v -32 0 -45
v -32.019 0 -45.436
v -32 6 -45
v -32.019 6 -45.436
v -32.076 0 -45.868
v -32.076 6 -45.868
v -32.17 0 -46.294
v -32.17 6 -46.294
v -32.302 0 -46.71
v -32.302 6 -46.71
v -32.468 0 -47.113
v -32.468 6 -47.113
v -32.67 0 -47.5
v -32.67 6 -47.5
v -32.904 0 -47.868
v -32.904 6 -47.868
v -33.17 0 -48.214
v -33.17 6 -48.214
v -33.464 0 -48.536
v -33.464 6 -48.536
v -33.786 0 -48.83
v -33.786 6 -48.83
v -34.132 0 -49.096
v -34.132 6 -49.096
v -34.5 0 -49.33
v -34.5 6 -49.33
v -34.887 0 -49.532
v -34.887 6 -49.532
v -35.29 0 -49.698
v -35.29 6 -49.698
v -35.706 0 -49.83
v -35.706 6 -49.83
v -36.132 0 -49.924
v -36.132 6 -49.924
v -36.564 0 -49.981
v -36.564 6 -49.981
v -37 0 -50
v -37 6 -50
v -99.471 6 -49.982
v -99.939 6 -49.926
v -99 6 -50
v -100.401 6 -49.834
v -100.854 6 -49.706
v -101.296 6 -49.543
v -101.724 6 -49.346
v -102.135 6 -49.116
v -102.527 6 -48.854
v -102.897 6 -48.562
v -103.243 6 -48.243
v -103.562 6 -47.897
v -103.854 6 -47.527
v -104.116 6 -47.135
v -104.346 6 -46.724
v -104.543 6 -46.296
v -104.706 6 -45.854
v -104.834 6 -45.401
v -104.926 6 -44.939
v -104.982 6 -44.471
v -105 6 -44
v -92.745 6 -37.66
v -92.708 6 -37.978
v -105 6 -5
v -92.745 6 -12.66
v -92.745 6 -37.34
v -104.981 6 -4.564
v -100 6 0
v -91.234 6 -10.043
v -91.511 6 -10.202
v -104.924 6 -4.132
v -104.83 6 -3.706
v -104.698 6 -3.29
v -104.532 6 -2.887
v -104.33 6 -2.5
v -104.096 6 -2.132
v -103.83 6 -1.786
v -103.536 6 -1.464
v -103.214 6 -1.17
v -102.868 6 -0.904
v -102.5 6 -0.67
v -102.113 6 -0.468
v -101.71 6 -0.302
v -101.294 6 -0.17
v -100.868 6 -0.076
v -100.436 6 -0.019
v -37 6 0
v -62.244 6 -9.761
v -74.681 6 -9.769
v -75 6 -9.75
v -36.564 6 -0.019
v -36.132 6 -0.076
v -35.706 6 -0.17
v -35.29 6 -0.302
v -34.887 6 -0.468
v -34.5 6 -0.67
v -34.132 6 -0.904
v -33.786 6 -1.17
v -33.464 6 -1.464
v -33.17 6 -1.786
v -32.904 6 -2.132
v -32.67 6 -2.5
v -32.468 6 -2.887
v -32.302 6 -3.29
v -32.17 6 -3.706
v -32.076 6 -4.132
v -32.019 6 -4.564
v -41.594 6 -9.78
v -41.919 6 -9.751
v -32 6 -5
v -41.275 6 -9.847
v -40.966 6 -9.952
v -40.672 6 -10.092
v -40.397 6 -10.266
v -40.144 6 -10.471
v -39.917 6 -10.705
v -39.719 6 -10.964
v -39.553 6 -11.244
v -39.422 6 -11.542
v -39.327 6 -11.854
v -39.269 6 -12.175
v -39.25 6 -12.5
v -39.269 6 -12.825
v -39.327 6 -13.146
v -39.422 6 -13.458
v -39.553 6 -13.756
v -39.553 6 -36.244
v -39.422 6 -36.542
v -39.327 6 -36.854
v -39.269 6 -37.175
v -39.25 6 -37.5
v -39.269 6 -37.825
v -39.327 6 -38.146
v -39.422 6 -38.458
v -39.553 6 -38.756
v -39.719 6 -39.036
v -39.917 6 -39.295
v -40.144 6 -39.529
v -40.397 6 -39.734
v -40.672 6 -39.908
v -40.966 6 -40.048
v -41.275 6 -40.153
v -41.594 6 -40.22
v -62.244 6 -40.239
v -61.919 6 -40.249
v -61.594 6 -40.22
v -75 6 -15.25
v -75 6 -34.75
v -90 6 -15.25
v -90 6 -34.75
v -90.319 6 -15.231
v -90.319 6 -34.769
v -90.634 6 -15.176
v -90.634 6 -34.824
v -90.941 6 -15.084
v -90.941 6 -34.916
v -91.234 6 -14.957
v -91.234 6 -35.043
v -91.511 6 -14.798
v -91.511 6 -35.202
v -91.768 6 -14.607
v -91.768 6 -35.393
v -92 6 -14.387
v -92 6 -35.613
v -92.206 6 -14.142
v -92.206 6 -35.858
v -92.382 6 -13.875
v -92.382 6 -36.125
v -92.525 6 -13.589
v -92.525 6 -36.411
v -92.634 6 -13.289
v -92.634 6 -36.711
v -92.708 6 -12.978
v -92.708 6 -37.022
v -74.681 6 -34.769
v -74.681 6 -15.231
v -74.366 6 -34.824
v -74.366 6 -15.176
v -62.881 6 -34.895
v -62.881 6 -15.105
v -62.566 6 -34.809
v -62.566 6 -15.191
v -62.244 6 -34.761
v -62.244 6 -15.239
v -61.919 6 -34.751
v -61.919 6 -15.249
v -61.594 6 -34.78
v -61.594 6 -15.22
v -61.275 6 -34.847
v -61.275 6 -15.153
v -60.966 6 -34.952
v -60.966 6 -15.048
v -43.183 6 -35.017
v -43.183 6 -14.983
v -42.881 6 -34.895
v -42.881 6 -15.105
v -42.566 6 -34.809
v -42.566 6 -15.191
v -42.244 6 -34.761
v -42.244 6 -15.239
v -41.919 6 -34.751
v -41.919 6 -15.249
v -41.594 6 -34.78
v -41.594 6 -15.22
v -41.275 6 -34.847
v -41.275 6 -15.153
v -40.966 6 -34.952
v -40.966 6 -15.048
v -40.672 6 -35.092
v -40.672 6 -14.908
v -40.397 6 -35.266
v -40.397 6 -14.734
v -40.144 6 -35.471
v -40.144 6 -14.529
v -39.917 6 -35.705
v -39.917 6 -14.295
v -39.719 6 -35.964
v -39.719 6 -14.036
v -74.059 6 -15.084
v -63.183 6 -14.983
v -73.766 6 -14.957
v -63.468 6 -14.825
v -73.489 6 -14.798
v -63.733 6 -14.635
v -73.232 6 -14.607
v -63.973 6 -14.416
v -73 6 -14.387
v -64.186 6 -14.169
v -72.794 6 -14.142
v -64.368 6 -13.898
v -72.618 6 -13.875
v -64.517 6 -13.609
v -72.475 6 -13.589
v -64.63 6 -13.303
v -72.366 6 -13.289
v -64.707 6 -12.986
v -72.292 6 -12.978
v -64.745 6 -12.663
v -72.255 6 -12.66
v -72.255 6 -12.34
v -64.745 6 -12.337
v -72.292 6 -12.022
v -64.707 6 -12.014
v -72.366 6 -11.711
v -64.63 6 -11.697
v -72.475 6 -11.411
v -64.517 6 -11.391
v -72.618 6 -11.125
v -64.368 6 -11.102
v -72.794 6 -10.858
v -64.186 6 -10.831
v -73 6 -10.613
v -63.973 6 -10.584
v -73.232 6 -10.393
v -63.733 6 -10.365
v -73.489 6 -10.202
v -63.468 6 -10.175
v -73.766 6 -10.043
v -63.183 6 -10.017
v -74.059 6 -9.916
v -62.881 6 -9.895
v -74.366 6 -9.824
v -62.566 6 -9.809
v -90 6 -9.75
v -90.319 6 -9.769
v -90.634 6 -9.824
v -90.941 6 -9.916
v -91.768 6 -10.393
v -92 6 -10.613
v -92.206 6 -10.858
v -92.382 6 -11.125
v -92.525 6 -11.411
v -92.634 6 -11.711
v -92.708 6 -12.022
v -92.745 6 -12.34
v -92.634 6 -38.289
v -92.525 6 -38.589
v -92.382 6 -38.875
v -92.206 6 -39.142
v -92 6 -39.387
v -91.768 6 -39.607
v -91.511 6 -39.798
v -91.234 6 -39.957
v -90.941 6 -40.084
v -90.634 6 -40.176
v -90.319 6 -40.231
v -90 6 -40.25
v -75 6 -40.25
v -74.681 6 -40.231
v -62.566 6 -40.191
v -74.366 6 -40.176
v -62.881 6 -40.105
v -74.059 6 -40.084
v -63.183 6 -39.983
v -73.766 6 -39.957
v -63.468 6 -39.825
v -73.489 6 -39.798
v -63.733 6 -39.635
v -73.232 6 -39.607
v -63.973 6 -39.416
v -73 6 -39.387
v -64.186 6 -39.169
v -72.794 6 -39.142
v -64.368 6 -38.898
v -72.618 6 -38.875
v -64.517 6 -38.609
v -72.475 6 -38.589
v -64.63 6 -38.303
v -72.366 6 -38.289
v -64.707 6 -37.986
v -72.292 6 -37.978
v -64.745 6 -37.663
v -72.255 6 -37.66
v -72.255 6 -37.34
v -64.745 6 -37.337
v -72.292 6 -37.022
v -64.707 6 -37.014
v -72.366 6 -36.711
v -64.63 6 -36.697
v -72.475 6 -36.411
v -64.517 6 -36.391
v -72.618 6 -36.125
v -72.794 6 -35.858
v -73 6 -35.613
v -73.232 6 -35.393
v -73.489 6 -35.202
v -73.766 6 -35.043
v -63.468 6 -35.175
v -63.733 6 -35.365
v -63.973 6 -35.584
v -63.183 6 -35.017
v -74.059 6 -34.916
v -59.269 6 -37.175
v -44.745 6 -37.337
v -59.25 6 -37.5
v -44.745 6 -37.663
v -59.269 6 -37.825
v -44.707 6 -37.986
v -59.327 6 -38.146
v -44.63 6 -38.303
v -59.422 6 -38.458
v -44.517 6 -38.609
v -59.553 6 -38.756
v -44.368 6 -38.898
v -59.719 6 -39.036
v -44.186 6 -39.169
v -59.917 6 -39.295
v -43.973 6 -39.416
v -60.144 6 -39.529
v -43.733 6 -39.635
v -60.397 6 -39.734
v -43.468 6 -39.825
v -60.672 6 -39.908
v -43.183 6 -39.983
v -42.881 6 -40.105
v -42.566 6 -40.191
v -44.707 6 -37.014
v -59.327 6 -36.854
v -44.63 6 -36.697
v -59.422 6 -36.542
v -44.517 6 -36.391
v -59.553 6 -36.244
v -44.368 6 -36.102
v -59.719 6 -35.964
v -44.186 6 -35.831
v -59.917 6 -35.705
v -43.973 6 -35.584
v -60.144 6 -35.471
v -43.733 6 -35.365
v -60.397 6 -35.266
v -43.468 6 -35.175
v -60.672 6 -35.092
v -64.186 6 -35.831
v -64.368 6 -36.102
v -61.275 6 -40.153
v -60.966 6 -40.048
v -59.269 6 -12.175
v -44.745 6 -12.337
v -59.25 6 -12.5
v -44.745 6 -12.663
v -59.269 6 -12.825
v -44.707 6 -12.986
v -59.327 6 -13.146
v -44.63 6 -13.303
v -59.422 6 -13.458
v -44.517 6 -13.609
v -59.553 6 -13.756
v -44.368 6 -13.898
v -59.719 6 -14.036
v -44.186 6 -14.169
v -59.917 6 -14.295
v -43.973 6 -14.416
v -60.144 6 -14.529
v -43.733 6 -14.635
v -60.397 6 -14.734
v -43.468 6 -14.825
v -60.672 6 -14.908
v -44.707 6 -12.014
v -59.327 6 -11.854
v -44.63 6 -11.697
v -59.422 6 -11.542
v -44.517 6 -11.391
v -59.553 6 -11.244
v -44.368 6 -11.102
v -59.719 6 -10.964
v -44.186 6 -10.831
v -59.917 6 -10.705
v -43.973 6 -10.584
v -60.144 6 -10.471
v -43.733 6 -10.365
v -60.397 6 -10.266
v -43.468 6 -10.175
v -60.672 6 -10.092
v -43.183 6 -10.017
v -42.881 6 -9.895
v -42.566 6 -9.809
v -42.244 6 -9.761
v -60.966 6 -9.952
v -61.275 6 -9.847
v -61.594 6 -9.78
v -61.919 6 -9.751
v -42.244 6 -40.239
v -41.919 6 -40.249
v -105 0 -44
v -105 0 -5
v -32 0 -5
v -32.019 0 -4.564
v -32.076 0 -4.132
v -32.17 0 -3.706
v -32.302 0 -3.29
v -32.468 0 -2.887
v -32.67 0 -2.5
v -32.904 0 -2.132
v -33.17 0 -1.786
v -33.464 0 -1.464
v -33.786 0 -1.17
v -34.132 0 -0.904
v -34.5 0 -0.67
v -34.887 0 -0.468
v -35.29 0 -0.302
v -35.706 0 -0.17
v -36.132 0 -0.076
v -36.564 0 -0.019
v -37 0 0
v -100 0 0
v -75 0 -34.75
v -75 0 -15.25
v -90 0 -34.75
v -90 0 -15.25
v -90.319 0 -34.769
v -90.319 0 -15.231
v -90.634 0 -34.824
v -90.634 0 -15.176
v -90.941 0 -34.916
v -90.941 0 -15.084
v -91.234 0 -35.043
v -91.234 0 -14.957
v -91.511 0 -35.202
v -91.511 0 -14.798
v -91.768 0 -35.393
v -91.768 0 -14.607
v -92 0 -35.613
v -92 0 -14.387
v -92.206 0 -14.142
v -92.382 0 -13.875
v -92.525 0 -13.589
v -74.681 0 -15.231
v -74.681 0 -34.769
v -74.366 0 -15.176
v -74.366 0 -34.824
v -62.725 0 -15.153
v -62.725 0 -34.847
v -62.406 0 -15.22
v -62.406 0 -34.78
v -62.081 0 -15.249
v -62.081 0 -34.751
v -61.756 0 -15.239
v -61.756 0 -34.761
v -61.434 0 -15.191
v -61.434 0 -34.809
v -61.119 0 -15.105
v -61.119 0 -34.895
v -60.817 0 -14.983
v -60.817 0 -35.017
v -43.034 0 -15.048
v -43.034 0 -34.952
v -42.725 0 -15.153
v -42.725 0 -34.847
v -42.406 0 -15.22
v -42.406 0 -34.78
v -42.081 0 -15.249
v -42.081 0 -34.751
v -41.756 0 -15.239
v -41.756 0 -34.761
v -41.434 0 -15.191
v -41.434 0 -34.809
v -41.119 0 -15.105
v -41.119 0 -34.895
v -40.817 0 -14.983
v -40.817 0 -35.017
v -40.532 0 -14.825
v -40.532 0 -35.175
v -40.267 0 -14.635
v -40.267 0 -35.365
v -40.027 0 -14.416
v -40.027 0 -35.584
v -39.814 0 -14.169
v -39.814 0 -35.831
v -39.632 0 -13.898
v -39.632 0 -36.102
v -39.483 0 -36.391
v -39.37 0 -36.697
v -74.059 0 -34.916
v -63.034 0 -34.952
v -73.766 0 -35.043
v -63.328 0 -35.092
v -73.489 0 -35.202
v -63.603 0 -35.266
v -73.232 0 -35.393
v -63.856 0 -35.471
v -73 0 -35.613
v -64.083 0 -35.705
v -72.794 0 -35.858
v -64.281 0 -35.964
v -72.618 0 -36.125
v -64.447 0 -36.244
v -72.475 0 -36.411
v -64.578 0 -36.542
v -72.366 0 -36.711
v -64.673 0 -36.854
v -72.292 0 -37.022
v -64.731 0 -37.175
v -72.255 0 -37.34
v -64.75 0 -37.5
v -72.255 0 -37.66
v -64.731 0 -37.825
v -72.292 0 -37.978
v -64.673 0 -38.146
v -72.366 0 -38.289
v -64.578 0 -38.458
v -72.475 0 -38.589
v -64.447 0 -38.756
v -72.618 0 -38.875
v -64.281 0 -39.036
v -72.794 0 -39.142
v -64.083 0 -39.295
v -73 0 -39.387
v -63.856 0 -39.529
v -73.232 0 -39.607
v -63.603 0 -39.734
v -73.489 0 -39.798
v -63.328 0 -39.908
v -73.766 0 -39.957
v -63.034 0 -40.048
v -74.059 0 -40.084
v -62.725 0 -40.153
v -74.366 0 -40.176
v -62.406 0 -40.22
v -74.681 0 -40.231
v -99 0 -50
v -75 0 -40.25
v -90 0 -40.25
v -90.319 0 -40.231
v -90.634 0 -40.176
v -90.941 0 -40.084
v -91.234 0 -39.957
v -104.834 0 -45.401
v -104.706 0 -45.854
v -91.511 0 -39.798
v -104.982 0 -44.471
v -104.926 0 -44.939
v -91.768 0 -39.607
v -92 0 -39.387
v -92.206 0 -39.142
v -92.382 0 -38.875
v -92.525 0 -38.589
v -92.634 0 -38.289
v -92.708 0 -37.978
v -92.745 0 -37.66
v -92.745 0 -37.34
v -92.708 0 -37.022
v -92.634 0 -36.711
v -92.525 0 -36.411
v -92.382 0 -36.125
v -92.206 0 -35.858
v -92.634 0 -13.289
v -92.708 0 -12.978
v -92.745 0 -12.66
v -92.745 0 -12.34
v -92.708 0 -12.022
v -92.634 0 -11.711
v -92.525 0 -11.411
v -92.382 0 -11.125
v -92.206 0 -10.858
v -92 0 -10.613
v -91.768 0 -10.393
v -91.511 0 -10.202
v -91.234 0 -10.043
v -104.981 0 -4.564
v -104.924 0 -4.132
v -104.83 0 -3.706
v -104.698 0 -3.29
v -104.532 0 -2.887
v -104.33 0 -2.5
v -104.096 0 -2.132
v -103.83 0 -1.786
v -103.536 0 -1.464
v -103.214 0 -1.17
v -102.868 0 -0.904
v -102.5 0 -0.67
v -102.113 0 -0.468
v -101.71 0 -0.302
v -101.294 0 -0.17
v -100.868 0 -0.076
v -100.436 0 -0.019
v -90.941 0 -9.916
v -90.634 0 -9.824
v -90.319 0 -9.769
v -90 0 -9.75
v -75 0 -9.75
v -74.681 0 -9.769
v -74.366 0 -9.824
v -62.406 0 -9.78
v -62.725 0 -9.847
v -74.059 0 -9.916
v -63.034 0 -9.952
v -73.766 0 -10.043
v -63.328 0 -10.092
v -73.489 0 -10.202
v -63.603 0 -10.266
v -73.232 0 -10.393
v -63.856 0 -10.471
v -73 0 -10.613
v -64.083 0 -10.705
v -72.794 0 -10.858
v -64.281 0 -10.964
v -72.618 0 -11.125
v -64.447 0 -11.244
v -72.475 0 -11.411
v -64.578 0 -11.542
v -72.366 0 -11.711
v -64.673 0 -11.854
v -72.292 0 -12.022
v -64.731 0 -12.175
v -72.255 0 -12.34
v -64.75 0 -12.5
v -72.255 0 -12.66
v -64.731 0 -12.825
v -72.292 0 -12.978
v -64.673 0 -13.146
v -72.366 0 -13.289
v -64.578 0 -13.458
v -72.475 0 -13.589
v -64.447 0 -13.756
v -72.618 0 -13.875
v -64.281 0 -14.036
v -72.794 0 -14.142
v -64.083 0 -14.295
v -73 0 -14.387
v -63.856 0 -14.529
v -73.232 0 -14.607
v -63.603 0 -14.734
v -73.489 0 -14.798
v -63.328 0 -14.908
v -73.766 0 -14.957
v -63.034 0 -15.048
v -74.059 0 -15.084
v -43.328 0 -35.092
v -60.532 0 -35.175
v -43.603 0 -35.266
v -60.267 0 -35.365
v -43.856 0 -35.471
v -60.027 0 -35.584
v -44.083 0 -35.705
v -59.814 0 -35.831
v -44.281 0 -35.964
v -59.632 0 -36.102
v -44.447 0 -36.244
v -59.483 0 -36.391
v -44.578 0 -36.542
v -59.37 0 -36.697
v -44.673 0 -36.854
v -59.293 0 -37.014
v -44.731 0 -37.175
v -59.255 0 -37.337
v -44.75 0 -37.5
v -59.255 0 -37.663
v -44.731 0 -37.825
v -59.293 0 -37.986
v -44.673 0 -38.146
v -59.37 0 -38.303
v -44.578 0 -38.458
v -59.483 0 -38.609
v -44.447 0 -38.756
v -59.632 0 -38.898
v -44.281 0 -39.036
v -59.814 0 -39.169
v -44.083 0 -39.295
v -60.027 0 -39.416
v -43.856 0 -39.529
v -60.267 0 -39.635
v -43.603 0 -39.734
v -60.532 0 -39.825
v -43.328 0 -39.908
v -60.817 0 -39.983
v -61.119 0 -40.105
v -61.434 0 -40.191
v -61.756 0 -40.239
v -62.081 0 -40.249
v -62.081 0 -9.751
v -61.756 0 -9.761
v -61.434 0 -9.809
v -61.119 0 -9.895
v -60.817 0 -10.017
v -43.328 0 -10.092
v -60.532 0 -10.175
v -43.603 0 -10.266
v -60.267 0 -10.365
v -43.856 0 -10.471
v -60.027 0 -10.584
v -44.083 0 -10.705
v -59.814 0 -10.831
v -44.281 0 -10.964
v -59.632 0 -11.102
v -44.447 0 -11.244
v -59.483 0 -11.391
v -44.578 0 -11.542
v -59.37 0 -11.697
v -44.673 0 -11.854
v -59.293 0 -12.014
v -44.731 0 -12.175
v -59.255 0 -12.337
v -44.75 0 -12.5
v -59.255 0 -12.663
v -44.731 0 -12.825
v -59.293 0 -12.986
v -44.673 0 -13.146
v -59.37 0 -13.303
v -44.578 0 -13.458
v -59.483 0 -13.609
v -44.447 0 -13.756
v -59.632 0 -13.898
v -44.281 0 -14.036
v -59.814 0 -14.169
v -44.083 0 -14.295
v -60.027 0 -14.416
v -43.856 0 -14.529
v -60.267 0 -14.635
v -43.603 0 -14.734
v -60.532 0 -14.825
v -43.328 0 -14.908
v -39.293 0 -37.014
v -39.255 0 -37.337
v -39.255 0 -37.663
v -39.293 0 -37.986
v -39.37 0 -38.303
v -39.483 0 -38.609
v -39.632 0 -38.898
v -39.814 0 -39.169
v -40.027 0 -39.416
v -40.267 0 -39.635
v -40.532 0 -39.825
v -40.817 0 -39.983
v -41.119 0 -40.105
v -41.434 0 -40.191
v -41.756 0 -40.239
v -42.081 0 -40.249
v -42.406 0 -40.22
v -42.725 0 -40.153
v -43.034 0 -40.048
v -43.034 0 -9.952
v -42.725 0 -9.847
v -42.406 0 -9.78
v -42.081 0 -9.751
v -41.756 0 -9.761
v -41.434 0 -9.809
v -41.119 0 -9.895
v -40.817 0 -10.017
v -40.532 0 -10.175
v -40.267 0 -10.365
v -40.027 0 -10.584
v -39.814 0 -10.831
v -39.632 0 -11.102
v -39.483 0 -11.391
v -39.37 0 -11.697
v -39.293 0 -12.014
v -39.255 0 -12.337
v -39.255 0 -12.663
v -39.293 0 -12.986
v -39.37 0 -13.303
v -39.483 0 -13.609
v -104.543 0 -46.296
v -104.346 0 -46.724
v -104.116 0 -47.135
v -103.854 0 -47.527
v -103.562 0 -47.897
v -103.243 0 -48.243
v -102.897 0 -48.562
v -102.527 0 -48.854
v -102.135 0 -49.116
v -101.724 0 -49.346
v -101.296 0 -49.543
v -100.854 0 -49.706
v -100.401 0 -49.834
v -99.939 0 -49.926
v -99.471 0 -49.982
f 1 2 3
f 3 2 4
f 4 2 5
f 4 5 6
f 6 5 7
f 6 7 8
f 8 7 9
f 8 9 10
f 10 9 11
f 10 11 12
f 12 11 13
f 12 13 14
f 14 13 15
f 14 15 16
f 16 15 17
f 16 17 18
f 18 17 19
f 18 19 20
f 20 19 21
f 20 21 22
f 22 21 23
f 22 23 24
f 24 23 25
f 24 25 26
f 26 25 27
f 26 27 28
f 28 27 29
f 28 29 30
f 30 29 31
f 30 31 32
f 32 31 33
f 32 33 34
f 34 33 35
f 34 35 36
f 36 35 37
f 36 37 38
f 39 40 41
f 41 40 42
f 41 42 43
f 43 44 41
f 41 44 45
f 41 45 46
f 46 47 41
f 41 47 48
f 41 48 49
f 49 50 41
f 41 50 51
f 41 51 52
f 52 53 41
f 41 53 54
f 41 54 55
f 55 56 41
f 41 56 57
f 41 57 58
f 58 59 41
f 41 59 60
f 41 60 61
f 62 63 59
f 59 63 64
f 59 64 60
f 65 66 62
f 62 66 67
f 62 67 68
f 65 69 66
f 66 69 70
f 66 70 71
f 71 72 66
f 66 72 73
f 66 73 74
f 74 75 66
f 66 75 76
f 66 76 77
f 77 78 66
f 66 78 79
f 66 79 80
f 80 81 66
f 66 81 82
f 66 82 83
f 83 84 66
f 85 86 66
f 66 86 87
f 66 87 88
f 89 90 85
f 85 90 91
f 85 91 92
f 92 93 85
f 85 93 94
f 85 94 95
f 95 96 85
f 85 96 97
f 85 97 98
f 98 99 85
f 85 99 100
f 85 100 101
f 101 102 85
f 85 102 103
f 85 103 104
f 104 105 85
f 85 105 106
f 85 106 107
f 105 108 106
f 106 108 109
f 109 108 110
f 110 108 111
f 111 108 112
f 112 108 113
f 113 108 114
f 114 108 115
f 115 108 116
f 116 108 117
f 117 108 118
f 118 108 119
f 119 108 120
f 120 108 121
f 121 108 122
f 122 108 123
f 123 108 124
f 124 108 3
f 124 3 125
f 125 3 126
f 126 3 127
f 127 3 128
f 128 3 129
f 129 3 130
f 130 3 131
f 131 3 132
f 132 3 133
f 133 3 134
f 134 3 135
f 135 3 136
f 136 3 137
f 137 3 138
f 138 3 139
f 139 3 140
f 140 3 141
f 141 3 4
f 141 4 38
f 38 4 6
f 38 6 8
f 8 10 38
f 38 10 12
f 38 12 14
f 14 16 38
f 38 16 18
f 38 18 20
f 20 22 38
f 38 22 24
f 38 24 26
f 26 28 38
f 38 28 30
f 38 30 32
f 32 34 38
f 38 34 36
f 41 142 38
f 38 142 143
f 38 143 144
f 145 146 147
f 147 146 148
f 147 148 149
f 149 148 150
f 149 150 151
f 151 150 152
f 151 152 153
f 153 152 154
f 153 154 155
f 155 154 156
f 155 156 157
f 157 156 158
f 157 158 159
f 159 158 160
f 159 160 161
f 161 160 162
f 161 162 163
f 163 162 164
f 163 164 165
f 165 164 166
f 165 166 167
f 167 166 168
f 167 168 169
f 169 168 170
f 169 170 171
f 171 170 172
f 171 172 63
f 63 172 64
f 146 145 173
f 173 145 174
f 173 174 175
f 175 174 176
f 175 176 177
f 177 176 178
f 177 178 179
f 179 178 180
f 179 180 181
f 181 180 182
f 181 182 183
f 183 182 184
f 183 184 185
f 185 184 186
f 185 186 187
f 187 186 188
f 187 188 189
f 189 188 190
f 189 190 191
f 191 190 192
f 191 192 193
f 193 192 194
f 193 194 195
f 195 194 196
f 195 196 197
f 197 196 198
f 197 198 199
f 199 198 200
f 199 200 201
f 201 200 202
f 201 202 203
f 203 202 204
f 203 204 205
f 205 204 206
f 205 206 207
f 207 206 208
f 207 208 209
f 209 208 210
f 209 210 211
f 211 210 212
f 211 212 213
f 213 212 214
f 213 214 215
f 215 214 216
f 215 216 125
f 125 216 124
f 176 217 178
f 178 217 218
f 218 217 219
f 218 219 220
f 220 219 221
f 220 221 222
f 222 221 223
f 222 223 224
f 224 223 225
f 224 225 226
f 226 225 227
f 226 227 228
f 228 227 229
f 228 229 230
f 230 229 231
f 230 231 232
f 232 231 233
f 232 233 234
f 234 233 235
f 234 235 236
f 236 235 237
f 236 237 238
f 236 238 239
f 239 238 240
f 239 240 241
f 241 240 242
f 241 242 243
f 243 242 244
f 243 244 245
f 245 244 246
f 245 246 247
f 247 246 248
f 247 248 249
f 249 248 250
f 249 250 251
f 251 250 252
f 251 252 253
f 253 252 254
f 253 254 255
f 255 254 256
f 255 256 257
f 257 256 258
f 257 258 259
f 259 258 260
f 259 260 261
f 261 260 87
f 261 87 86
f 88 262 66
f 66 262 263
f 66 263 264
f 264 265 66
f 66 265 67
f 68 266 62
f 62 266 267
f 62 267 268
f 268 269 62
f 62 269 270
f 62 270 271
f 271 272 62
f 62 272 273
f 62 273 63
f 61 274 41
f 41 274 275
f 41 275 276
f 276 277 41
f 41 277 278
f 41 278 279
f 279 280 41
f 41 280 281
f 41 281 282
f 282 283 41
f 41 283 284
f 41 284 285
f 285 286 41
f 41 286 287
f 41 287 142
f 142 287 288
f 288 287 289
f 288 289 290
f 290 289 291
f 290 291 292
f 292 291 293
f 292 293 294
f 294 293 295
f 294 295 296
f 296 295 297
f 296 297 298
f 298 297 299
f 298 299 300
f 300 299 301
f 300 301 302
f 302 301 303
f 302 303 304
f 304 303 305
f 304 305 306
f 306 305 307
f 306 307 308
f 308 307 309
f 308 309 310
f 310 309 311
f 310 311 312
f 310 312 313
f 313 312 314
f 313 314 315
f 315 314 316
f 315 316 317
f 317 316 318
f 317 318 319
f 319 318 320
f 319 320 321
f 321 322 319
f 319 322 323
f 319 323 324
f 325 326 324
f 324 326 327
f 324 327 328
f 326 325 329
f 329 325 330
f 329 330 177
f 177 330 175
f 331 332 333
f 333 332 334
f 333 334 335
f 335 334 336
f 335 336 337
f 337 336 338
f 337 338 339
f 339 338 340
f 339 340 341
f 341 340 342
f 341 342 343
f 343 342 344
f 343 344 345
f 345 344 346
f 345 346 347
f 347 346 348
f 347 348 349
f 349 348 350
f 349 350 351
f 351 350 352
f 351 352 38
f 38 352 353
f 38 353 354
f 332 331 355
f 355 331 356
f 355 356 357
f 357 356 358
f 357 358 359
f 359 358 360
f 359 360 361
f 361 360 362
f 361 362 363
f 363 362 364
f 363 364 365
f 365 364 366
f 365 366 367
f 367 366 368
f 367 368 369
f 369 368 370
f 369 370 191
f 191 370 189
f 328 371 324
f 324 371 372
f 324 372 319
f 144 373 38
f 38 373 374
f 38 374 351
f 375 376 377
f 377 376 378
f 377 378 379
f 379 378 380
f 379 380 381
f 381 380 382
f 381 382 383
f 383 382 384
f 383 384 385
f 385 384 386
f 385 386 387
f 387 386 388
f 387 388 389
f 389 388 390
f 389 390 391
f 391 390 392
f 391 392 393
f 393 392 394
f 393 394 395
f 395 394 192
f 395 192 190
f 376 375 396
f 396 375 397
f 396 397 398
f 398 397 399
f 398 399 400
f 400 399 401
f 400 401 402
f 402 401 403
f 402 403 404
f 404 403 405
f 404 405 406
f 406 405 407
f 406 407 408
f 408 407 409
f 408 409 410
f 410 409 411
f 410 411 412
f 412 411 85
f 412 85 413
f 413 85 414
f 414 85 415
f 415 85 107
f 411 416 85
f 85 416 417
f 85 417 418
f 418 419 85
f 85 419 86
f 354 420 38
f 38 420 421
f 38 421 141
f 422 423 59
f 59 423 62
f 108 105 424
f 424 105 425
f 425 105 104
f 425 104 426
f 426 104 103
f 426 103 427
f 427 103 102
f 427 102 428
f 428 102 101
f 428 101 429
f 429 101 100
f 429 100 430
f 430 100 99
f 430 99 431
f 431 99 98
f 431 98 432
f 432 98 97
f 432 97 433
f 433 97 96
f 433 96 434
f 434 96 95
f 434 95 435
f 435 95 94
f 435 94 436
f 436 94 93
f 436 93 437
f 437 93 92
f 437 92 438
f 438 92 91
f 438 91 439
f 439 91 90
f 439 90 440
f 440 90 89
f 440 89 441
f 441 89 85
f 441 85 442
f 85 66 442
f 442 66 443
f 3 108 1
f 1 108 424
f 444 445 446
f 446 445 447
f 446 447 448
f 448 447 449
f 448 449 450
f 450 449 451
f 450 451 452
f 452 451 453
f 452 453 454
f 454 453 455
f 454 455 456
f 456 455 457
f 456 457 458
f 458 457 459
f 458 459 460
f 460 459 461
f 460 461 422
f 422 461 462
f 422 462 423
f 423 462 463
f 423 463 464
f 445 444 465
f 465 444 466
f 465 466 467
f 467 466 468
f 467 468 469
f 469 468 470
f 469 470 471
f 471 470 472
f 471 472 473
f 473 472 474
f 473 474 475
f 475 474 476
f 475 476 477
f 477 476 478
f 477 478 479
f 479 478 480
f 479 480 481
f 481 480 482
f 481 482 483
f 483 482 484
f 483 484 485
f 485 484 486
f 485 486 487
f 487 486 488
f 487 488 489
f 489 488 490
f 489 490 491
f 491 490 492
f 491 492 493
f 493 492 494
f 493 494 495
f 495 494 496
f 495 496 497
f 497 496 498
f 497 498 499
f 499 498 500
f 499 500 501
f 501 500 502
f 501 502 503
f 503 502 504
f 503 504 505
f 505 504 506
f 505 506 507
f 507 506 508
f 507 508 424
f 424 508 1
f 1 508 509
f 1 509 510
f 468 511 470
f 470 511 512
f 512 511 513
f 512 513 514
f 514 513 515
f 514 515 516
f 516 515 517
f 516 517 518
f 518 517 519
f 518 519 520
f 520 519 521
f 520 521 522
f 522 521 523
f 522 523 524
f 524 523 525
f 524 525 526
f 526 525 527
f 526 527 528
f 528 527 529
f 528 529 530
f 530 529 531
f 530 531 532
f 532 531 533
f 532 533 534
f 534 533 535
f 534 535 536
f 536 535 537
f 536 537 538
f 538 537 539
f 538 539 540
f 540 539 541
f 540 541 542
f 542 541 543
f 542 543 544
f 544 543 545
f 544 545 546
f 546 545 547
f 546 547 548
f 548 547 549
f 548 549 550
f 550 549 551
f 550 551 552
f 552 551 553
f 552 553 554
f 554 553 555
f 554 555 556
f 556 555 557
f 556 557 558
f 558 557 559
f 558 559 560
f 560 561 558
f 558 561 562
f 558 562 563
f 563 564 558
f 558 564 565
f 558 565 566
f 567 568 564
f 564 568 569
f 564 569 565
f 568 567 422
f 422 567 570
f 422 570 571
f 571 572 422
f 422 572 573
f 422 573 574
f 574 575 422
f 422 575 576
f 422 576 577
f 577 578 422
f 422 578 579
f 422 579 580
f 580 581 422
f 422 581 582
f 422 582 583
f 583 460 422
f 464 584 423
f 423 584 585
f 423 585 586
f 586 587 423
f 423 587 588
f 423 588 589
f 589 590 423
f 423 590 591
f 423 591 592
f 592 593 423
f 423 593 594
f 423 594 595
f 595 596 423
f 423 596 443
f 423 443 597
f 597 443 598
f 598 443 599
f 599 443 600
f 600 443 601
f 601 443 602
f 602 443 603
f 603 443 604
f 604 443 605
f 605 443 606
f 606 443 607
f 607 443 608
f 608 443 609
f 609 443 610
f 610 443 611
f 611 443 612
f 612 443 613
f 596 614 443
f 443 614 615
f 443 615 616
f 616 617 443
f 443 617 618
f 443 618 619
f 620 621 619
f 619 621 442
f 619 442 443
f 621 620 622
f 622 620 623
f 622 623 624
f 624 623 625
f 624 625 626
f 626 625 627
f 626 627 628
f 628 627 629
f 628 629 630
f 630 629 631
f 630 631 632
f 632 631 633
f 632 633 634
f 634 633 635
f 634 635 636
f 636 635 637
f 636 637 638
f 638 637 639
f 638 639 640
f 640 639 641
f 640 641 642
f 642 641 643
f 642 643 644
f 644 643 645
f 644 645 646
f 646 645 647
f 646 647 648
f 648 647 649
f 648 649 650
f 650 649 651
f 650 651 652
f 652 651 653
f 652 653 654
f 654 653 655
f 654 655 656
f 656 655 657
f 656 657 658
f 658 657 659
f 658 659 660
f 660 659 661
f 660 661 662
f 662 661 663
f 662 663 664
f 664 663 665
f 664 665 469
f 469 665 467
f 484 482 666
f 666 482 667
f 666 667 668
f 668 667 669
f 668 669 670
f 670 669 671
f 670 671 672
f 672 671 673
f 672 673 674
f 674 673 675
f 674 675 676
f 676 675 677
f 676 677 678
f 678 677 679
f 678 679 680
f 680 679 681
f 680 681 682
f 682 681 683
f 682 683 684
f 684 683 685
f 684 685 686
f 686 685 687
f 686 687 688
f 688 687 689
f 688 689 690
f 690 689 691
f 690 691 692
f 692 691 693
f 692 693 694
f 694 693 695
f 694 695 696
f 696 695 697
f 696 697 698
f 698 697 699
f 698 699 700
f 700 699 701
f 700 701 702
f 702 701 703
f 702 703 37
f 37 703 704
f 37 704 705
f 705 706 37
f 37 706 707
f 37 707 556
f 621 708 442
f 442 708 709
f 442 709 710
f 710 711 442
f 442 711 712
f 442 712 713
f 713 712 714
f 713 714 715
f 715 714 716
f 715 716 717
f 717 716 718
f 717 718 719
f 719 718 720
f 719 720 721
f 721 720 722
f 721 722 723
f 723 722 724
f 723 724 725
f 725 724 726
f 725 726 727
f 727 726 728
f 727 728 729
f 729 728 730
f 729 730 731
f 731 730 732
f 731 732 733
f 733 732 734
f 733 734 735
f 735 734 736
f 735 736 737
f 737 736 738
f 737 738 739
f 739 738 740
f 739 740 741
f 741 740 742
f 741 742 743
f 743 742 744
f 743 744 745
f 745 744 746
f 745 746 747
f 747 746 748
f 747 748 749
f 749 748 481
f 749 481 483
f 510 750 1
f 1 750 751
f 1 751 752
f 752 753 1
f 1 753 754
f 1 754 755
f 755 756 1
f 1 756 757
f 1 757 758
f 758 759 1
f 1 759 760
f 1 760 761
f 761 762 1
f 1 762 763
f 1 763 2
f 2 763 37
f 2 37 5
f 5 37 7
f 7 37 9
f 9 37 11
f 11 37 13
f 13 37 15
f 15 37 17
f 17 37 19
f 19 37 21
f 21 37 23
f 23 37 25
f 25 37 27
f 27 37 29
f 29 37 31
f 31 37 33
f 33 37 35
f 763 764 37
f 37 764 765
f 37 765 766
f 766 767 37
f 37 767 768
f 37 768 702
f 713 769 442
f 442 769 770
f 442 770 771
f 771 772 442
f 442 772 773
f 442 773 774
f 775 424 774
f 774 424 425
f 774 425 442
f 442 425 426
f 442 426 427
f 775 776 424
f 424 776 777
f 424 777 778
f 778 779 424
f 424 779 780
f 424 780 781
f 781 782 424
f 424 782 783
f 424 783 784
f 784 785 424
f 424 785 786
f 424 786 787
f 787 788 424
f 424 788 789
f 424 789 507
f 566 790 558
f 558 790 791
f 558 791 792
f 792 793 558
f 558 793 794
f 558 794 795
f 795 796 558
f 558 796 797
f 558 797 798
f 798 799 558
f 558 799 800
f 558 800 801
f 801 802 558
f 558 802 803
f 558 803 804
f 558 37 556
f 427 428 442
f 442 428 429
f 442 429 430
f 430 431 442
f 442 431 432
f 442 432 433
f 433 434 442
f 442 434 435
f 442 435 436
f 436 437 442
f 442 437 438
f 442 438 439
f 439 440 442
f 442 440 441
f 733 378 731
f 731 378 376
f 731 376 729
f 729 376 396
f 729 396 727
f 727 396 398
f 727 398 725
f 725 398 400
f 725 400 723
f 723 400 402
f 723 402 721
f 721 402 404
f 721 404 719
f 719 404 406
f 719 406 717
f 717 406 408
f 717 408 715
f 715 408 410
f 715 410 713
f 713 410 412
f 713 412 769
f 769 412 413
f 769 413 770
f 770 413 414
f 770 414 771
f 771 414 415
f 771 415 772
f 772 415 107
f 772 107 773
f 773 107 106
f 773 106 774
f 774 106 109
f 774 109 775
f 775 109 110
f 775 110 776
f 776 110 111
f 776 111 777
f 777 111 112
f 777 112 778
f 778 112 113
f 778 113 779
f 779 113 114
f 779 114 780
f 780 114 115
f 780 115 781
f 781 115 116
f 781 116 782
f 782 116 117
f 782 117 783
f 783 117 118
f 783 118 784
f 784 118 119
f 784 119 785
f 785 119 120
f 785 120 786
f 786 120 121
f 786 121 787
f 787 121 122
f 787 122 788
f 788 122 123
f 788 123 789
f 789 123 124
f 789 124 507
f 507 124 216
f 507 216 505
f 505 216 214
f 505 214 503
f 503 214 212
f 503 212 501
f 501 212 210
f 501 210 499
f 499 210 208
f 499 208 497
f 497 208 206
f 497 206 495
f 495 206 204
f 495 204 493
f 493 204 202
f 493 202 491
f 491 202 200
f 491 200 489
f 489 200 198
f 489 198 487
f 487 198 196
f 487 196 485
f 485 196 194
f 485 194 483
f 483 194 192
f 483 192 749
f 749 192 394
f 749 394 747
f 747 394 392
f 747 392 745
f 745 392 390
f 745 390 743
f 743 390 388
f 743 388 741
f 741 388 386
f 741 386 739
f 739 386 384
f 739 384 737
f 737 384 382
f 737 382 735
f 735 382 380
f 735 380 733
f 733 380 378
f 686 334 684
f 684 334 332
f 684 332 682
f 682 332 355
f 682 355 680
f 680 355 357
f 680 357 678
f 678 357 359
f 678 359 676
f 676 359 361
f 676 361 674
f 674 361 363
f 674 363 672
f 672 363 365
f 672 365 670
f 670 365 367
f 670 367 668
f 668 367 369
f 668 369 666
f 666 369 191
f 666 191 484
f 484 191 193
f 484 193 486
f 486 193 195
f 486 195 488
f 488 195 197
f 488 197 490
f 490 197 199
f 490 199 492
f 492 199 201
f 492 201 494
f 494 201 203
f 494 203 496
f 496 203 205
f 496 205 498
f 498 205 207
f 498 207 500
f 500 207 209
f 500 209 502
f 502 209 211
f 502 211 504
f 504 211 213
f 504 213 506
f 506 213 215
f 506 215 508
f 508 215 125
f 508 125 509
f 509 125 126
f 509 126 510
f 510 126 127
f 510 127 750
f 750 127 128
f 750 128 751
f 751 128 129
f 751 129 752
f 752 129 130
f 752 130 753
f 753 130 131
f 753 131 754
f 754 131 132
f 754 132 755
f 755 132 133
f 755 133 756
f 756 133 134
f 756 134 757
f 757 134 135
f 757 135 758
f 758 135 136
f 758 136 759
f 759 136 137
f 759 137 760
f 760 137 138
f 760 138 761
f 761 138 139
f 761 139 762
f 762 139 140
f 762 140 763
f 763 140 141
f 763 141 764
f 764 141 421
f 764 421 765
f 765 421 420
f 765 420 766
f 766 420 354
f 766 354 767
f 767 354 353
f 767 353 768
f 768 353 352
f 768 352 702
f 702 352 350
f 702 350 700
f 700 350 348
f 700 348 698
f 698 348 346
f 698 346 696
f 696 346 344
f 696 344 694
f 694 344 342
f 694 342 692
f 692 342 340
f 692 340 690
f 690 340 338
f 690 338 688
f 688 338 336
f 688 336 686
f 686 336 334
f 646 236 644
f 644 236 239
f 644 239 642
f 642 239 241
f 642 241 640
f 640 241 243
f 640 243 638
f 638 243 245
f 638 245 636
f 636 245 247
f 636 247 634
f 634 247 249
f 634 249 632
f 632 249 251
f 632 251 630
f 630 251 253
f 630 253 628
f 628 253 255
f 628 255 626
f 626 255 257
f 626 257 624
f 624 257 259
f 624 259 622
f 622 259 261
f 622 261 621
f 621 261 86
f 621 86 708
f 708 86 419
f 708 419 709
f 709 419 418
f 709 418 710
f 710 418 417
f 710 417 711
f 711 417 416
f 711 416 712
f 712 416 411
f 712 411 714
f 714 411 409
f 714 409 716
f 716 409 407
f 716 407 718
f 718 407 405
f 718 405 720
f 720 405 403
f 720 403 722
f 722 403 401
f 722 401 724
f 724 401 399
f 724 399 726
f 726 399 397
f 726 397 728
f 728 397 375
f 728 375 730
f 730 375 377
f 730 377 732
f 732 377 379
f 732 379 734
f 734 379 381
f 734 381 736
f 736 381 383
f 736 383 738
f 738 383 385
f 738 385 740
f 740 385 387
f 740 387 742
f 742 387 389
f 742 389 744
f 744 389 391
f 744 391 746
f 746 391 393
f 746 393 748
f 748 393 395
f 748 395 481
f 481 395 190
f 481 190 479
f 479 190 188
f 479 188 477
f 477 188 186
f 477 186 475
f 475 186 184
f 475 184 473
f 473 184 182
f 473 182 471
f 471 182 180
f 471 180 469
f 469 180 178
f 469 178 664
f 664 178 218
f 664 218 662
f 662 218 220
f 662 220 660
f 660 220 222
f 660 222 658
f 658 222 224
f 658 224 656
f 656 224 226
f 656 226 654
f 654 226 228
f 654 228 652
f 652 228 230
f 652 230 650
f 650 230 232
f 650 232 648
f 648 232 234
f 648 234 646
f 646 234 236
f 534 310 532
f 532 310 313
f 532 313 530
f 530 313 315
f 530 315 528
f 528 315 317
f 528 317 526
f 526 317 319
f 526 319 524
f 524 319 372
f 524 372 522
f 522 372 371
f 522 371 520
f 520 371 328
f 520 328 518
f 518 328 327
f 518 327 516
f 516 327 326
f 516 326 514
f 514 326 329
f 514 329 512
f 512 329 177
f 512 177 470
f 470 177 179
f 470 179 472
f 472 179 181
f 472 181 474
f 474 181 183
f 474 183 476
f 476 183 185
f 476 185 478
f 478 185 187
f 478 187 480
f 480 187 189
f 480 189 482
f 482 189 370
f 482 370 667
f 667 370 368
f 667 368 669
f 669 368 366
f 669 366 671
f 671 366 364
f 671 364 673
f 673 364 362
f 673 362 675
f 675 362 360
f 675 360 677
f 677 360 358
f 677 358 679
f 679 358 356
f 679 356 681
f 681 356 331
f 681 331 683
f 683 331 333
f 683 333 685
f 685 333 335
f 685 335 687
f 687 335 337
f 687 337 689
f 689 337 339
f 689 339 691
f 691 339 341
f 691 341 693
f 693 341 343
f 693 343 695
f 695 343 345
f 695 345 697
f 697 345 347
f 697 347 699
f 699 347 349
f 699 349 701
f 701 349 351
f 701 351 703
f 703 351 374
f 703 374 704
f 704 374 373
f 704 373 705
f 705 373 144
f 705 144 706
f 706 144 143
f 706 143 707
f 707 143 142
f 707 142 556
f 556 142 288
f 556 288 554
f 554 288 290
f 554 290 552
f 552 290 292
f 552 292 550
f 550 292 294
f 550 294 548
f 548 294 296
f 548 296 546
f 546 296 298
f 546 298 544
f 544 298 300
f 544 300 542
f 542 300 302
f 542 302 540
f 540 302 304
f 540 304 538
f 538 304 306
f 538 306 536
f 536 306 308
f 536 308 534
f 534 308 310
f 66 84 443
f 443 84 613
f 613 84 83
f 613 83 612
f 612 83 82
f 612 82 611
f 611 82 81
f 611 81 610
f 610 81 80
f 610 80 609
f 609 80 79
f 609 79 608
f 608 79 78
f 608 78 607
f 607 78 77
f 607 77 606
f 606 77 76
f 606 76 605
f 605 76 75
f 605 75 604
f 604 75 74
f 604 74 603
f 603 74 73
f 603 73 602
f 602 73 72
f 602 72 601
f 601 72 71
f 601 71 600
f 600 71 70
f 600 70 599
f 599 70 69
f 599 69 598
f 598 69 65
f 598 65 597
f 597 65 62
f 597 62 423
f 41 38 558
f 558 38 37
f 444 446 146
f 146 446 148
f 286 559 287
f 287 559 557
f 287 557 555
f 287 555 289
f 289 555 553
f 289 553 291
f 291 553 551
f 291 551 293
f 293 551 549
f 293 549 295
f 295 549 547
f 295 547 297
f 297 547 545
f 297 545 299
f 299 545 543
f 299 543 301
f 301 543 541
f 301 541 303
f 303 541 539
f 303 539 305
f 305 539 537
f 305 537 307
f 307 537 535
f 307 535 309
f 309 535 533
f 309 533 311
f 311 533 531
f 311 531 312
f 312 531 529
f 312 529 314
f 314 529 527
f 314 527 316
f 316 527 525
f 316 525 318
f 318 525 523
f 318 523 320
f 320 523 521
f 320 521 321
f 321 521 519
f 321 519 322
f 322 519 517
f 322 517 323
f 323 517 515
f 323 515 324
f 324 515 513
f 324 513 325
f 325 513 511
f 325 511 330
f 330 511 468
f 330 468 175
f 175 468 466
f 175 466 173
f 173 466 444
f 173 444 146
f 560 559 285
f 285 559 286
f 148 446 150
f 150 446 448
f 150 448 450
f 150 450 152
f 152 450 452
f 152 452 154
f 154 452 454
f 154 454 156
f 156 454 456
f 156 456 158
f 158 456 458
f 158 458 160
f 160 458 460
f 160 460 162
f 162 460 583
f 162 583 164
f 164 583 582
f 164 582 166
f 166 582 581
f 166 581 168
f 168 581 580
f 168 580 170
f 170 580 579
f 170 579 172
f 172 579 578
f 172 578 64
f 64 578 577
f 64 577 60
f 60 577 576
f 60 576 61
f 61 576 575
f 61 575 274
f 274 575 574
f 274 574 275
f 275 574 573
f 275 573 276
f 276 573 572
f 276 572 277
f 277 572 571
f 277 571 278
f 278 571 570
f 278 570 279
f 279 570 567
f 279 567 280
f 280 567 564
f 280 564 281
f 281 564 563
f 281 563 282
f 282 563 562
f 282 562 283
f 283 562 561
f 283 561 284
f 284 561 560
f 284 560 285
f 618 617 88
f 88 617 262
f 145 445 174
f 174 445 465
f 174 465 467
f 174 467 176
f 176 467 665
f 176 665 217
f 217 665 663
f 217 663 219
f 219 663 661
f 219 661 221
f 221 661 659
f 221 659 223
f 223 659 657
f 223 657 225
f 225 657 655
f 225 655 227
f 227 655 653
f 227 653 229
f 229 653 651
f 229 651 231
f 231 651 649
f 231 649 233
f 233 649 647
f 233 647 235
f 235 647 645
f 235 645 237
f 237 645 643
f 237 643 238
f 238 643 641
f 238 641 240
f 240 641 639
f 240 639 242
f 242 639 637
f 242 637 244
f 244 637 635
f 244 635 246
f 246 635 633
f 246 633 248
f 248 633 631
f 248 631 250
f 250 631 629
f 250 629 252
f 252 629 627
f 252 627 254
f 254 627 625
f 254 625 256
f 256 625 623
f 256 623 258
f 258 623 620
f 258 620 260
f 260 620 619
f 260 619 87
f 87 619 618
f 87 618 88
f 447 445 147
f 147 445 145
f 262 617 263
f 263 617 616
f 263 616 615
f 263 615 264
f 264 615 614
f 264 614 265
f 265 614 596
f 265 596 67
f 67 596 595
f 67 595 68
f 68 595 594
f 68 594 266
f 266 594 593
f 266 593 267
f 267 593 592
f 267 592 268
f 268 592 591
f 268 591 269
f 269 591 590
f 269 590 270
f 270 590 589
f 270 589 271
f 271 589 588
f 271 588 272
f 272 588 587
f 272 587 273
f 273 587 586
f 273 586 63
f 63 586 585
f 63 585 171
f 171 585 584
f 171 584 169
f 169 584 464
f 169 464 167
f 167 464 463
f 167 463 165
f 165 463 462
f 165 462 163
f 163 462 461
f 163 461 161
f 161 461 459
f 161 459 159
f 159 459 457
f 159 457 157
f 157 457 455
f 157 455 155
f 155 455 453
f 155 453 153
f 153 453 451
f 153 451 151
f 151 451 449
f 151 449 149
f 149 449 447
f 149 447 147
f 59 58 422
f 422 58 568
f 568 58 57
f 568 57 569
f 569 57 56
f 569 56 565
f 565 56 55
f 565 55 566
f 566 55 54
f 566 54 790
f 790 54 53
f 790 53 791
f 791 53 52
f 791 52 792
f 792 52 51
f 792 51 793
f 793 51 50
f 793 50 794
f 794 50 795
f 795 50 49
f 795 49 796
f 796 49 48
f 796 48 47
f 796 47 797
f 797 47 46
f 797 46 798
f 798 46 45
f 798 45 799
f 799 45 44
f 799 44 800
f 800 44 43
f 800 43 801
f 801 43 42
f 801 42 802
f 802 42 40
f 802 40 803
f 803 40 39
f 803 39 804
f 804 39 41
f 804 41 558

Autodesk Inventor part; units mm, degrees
ref_plane "YZ Plane" through (0, 0, 0) normal (1, 0, 0) x (0, 1, 0)
ref_plane "XZ Plane" through (0, 0, 0) normal (0, 1, 0) x (-1, 0, 0)
ref_plane "XY Plane" through (0, 0, 0) normal (0, 0, 1) x (1, 0, 0)
sketch "Sketch1" plane through (0, 0, 0) normal (0, 1, 0) x (-1, 0, 0)
  line L0 (0, 0) -> (105, 0)
  line L1 (105, 0) -> (105, -50)
  line L2 (105, -50) -> (0, -50)
  line L3 (0, -50) -> (0, 0)
  line L4 (0, 0) -> (0, -16.6667)
  line L5 (0, -16.6667) -> (11, -16.6667)
  dimension "d0" = 105
  dimension "d1" = 50
  dimension "d2" = 16.6667
  dimension "d3" = 11
extrude "Extrusion1" add sketch "Sketch1" along normal blind 6
sketch "Sketch3" plane through (0, 6, 0) normal (0, 1, 0) x (1, 0, 0)
  circle A0 centre (-20, 12.5) radius 2.75
  line L0 (0, 0) -> (0, 50) projected
  line L1 (-105, 0) -> (0, 0) projected
  circle A1 centre (-20, 37.5) radius 2.75
  dimension "d21" = 5.5
  dimension "d22" = 20
  dimension "d23" = 12.5
  dimension "d26" = 25
extrude "Extrusion3" cut sketch "Sketch3" against normal through all
sketch "Sketch4" plane through (0, 6, 0) normal (0, 1, 0) x (1, 0, 0)
  circle A0 centre (-20, 12.5) radius 2.75 projected
  line L0 (-20, 12.5) -> (-75, 12.5)
  line L1 (-75, 12.5) -> (-90, 12.5) construction
  line L2 (-75, 15.25) -> (-90, 15.25)
  line L3 (-90, 9.75) -> (-75, 9.75)
  arc A1 (-75, 9.75) -> (-75, 15.25) centre (-75, 12.5) ccw
  arc A2 (-90, 15.25) -> (-90, 9.75) centre (-90, 12.5) ccw
  point P0 (0, 0)
  point P1 (-82.5, 12.5)
  dimension "d33" = 55
  dimension "d34" = 15
  dimension "d35" = 5.5
extrude "Extrusion4" cut sketch "Sketch4" against normal through all contours A1 L3 A2 L2
pattern_linear "Rectangular Pattern2" count 2 spacing 25 along (0, 0, -1) of "Extrusion4"
fillet "Fillet2" radius 5 3 edges at (-105, 3, 0) (0, 3, 0) (0, 3, -50)
sketch "Sketch7" plane through (0, 6, 0) normal (0, 1, 0) x (1, 0, 0)
  circle A0 centre (-20, 12.5) radius 2.75 projected
  line L0 (-20, 12.5) -> (-42, 12.5)
  line L1 (-42, 12.5) -> (-62, 12.5)
  circle A1 centre (-62, 12.5) radius 2.75
  circle A2 centre (-42, 12.5) radius 2.75
  line L2 (0, 5) -> (0, 45) projected
  line L3 (0, 0) -> (0, 45)
  circle A3 centre (-42, 37.5) radius 2.75
  circle A4 centre (-62, 37.5) radius 2.75
  dimension "d55" = 22
  dimension "d56" = 20
  dimension "d57" = 5.5
  dimension "d58" = 5.5
  dimension "d61" = 25
extrude "Extrusion7" cut sketch "Sketch7" against normal through all contours A2 L1 L0 | L0 L1 A2 | A1 | A3 | A4
sketch "Sketch9" plane through (0, 6, 0) normal (0, 1, 0) x (1, 0, 0)
  point P0 (0, 0)
sketch "Sketch12" plane through (0, 6, 0) normal (0, 1, 0) x (1, 0, 0)
  circle A0 centre (-42, 37.5) radius 2.75 projected
  line L0 (-42, 37.5) -> (-32, 37.5)
  line L1 (-32, 37.5) -> (-32, 50)
  line L2 (-5, 50) -> (-105, 50) projected
  line L3 (-32, 50) -> (0, 50)
  line L4 (0, 50) -> (0, 0)
  line L5 (0, 0) -> (-32, 0)
  line L6 (-32, 0) -> (-32, 50)
  point P0 (-74, 50)
  dimension "d87" = 10
extrude "Extrusion10" cut sketch "Sketch12" against normal blind 10 contours L1 L2 L3 L4 L5 L6
fillet "Fillet3" radius 5 2 edges at (-32, 3, 0) (-32, 3, -50)
fillet "Fillet4" radius 6 1 edges at (-105, 3, -50)
properties part number "X_Carriage_Plate_Short"
